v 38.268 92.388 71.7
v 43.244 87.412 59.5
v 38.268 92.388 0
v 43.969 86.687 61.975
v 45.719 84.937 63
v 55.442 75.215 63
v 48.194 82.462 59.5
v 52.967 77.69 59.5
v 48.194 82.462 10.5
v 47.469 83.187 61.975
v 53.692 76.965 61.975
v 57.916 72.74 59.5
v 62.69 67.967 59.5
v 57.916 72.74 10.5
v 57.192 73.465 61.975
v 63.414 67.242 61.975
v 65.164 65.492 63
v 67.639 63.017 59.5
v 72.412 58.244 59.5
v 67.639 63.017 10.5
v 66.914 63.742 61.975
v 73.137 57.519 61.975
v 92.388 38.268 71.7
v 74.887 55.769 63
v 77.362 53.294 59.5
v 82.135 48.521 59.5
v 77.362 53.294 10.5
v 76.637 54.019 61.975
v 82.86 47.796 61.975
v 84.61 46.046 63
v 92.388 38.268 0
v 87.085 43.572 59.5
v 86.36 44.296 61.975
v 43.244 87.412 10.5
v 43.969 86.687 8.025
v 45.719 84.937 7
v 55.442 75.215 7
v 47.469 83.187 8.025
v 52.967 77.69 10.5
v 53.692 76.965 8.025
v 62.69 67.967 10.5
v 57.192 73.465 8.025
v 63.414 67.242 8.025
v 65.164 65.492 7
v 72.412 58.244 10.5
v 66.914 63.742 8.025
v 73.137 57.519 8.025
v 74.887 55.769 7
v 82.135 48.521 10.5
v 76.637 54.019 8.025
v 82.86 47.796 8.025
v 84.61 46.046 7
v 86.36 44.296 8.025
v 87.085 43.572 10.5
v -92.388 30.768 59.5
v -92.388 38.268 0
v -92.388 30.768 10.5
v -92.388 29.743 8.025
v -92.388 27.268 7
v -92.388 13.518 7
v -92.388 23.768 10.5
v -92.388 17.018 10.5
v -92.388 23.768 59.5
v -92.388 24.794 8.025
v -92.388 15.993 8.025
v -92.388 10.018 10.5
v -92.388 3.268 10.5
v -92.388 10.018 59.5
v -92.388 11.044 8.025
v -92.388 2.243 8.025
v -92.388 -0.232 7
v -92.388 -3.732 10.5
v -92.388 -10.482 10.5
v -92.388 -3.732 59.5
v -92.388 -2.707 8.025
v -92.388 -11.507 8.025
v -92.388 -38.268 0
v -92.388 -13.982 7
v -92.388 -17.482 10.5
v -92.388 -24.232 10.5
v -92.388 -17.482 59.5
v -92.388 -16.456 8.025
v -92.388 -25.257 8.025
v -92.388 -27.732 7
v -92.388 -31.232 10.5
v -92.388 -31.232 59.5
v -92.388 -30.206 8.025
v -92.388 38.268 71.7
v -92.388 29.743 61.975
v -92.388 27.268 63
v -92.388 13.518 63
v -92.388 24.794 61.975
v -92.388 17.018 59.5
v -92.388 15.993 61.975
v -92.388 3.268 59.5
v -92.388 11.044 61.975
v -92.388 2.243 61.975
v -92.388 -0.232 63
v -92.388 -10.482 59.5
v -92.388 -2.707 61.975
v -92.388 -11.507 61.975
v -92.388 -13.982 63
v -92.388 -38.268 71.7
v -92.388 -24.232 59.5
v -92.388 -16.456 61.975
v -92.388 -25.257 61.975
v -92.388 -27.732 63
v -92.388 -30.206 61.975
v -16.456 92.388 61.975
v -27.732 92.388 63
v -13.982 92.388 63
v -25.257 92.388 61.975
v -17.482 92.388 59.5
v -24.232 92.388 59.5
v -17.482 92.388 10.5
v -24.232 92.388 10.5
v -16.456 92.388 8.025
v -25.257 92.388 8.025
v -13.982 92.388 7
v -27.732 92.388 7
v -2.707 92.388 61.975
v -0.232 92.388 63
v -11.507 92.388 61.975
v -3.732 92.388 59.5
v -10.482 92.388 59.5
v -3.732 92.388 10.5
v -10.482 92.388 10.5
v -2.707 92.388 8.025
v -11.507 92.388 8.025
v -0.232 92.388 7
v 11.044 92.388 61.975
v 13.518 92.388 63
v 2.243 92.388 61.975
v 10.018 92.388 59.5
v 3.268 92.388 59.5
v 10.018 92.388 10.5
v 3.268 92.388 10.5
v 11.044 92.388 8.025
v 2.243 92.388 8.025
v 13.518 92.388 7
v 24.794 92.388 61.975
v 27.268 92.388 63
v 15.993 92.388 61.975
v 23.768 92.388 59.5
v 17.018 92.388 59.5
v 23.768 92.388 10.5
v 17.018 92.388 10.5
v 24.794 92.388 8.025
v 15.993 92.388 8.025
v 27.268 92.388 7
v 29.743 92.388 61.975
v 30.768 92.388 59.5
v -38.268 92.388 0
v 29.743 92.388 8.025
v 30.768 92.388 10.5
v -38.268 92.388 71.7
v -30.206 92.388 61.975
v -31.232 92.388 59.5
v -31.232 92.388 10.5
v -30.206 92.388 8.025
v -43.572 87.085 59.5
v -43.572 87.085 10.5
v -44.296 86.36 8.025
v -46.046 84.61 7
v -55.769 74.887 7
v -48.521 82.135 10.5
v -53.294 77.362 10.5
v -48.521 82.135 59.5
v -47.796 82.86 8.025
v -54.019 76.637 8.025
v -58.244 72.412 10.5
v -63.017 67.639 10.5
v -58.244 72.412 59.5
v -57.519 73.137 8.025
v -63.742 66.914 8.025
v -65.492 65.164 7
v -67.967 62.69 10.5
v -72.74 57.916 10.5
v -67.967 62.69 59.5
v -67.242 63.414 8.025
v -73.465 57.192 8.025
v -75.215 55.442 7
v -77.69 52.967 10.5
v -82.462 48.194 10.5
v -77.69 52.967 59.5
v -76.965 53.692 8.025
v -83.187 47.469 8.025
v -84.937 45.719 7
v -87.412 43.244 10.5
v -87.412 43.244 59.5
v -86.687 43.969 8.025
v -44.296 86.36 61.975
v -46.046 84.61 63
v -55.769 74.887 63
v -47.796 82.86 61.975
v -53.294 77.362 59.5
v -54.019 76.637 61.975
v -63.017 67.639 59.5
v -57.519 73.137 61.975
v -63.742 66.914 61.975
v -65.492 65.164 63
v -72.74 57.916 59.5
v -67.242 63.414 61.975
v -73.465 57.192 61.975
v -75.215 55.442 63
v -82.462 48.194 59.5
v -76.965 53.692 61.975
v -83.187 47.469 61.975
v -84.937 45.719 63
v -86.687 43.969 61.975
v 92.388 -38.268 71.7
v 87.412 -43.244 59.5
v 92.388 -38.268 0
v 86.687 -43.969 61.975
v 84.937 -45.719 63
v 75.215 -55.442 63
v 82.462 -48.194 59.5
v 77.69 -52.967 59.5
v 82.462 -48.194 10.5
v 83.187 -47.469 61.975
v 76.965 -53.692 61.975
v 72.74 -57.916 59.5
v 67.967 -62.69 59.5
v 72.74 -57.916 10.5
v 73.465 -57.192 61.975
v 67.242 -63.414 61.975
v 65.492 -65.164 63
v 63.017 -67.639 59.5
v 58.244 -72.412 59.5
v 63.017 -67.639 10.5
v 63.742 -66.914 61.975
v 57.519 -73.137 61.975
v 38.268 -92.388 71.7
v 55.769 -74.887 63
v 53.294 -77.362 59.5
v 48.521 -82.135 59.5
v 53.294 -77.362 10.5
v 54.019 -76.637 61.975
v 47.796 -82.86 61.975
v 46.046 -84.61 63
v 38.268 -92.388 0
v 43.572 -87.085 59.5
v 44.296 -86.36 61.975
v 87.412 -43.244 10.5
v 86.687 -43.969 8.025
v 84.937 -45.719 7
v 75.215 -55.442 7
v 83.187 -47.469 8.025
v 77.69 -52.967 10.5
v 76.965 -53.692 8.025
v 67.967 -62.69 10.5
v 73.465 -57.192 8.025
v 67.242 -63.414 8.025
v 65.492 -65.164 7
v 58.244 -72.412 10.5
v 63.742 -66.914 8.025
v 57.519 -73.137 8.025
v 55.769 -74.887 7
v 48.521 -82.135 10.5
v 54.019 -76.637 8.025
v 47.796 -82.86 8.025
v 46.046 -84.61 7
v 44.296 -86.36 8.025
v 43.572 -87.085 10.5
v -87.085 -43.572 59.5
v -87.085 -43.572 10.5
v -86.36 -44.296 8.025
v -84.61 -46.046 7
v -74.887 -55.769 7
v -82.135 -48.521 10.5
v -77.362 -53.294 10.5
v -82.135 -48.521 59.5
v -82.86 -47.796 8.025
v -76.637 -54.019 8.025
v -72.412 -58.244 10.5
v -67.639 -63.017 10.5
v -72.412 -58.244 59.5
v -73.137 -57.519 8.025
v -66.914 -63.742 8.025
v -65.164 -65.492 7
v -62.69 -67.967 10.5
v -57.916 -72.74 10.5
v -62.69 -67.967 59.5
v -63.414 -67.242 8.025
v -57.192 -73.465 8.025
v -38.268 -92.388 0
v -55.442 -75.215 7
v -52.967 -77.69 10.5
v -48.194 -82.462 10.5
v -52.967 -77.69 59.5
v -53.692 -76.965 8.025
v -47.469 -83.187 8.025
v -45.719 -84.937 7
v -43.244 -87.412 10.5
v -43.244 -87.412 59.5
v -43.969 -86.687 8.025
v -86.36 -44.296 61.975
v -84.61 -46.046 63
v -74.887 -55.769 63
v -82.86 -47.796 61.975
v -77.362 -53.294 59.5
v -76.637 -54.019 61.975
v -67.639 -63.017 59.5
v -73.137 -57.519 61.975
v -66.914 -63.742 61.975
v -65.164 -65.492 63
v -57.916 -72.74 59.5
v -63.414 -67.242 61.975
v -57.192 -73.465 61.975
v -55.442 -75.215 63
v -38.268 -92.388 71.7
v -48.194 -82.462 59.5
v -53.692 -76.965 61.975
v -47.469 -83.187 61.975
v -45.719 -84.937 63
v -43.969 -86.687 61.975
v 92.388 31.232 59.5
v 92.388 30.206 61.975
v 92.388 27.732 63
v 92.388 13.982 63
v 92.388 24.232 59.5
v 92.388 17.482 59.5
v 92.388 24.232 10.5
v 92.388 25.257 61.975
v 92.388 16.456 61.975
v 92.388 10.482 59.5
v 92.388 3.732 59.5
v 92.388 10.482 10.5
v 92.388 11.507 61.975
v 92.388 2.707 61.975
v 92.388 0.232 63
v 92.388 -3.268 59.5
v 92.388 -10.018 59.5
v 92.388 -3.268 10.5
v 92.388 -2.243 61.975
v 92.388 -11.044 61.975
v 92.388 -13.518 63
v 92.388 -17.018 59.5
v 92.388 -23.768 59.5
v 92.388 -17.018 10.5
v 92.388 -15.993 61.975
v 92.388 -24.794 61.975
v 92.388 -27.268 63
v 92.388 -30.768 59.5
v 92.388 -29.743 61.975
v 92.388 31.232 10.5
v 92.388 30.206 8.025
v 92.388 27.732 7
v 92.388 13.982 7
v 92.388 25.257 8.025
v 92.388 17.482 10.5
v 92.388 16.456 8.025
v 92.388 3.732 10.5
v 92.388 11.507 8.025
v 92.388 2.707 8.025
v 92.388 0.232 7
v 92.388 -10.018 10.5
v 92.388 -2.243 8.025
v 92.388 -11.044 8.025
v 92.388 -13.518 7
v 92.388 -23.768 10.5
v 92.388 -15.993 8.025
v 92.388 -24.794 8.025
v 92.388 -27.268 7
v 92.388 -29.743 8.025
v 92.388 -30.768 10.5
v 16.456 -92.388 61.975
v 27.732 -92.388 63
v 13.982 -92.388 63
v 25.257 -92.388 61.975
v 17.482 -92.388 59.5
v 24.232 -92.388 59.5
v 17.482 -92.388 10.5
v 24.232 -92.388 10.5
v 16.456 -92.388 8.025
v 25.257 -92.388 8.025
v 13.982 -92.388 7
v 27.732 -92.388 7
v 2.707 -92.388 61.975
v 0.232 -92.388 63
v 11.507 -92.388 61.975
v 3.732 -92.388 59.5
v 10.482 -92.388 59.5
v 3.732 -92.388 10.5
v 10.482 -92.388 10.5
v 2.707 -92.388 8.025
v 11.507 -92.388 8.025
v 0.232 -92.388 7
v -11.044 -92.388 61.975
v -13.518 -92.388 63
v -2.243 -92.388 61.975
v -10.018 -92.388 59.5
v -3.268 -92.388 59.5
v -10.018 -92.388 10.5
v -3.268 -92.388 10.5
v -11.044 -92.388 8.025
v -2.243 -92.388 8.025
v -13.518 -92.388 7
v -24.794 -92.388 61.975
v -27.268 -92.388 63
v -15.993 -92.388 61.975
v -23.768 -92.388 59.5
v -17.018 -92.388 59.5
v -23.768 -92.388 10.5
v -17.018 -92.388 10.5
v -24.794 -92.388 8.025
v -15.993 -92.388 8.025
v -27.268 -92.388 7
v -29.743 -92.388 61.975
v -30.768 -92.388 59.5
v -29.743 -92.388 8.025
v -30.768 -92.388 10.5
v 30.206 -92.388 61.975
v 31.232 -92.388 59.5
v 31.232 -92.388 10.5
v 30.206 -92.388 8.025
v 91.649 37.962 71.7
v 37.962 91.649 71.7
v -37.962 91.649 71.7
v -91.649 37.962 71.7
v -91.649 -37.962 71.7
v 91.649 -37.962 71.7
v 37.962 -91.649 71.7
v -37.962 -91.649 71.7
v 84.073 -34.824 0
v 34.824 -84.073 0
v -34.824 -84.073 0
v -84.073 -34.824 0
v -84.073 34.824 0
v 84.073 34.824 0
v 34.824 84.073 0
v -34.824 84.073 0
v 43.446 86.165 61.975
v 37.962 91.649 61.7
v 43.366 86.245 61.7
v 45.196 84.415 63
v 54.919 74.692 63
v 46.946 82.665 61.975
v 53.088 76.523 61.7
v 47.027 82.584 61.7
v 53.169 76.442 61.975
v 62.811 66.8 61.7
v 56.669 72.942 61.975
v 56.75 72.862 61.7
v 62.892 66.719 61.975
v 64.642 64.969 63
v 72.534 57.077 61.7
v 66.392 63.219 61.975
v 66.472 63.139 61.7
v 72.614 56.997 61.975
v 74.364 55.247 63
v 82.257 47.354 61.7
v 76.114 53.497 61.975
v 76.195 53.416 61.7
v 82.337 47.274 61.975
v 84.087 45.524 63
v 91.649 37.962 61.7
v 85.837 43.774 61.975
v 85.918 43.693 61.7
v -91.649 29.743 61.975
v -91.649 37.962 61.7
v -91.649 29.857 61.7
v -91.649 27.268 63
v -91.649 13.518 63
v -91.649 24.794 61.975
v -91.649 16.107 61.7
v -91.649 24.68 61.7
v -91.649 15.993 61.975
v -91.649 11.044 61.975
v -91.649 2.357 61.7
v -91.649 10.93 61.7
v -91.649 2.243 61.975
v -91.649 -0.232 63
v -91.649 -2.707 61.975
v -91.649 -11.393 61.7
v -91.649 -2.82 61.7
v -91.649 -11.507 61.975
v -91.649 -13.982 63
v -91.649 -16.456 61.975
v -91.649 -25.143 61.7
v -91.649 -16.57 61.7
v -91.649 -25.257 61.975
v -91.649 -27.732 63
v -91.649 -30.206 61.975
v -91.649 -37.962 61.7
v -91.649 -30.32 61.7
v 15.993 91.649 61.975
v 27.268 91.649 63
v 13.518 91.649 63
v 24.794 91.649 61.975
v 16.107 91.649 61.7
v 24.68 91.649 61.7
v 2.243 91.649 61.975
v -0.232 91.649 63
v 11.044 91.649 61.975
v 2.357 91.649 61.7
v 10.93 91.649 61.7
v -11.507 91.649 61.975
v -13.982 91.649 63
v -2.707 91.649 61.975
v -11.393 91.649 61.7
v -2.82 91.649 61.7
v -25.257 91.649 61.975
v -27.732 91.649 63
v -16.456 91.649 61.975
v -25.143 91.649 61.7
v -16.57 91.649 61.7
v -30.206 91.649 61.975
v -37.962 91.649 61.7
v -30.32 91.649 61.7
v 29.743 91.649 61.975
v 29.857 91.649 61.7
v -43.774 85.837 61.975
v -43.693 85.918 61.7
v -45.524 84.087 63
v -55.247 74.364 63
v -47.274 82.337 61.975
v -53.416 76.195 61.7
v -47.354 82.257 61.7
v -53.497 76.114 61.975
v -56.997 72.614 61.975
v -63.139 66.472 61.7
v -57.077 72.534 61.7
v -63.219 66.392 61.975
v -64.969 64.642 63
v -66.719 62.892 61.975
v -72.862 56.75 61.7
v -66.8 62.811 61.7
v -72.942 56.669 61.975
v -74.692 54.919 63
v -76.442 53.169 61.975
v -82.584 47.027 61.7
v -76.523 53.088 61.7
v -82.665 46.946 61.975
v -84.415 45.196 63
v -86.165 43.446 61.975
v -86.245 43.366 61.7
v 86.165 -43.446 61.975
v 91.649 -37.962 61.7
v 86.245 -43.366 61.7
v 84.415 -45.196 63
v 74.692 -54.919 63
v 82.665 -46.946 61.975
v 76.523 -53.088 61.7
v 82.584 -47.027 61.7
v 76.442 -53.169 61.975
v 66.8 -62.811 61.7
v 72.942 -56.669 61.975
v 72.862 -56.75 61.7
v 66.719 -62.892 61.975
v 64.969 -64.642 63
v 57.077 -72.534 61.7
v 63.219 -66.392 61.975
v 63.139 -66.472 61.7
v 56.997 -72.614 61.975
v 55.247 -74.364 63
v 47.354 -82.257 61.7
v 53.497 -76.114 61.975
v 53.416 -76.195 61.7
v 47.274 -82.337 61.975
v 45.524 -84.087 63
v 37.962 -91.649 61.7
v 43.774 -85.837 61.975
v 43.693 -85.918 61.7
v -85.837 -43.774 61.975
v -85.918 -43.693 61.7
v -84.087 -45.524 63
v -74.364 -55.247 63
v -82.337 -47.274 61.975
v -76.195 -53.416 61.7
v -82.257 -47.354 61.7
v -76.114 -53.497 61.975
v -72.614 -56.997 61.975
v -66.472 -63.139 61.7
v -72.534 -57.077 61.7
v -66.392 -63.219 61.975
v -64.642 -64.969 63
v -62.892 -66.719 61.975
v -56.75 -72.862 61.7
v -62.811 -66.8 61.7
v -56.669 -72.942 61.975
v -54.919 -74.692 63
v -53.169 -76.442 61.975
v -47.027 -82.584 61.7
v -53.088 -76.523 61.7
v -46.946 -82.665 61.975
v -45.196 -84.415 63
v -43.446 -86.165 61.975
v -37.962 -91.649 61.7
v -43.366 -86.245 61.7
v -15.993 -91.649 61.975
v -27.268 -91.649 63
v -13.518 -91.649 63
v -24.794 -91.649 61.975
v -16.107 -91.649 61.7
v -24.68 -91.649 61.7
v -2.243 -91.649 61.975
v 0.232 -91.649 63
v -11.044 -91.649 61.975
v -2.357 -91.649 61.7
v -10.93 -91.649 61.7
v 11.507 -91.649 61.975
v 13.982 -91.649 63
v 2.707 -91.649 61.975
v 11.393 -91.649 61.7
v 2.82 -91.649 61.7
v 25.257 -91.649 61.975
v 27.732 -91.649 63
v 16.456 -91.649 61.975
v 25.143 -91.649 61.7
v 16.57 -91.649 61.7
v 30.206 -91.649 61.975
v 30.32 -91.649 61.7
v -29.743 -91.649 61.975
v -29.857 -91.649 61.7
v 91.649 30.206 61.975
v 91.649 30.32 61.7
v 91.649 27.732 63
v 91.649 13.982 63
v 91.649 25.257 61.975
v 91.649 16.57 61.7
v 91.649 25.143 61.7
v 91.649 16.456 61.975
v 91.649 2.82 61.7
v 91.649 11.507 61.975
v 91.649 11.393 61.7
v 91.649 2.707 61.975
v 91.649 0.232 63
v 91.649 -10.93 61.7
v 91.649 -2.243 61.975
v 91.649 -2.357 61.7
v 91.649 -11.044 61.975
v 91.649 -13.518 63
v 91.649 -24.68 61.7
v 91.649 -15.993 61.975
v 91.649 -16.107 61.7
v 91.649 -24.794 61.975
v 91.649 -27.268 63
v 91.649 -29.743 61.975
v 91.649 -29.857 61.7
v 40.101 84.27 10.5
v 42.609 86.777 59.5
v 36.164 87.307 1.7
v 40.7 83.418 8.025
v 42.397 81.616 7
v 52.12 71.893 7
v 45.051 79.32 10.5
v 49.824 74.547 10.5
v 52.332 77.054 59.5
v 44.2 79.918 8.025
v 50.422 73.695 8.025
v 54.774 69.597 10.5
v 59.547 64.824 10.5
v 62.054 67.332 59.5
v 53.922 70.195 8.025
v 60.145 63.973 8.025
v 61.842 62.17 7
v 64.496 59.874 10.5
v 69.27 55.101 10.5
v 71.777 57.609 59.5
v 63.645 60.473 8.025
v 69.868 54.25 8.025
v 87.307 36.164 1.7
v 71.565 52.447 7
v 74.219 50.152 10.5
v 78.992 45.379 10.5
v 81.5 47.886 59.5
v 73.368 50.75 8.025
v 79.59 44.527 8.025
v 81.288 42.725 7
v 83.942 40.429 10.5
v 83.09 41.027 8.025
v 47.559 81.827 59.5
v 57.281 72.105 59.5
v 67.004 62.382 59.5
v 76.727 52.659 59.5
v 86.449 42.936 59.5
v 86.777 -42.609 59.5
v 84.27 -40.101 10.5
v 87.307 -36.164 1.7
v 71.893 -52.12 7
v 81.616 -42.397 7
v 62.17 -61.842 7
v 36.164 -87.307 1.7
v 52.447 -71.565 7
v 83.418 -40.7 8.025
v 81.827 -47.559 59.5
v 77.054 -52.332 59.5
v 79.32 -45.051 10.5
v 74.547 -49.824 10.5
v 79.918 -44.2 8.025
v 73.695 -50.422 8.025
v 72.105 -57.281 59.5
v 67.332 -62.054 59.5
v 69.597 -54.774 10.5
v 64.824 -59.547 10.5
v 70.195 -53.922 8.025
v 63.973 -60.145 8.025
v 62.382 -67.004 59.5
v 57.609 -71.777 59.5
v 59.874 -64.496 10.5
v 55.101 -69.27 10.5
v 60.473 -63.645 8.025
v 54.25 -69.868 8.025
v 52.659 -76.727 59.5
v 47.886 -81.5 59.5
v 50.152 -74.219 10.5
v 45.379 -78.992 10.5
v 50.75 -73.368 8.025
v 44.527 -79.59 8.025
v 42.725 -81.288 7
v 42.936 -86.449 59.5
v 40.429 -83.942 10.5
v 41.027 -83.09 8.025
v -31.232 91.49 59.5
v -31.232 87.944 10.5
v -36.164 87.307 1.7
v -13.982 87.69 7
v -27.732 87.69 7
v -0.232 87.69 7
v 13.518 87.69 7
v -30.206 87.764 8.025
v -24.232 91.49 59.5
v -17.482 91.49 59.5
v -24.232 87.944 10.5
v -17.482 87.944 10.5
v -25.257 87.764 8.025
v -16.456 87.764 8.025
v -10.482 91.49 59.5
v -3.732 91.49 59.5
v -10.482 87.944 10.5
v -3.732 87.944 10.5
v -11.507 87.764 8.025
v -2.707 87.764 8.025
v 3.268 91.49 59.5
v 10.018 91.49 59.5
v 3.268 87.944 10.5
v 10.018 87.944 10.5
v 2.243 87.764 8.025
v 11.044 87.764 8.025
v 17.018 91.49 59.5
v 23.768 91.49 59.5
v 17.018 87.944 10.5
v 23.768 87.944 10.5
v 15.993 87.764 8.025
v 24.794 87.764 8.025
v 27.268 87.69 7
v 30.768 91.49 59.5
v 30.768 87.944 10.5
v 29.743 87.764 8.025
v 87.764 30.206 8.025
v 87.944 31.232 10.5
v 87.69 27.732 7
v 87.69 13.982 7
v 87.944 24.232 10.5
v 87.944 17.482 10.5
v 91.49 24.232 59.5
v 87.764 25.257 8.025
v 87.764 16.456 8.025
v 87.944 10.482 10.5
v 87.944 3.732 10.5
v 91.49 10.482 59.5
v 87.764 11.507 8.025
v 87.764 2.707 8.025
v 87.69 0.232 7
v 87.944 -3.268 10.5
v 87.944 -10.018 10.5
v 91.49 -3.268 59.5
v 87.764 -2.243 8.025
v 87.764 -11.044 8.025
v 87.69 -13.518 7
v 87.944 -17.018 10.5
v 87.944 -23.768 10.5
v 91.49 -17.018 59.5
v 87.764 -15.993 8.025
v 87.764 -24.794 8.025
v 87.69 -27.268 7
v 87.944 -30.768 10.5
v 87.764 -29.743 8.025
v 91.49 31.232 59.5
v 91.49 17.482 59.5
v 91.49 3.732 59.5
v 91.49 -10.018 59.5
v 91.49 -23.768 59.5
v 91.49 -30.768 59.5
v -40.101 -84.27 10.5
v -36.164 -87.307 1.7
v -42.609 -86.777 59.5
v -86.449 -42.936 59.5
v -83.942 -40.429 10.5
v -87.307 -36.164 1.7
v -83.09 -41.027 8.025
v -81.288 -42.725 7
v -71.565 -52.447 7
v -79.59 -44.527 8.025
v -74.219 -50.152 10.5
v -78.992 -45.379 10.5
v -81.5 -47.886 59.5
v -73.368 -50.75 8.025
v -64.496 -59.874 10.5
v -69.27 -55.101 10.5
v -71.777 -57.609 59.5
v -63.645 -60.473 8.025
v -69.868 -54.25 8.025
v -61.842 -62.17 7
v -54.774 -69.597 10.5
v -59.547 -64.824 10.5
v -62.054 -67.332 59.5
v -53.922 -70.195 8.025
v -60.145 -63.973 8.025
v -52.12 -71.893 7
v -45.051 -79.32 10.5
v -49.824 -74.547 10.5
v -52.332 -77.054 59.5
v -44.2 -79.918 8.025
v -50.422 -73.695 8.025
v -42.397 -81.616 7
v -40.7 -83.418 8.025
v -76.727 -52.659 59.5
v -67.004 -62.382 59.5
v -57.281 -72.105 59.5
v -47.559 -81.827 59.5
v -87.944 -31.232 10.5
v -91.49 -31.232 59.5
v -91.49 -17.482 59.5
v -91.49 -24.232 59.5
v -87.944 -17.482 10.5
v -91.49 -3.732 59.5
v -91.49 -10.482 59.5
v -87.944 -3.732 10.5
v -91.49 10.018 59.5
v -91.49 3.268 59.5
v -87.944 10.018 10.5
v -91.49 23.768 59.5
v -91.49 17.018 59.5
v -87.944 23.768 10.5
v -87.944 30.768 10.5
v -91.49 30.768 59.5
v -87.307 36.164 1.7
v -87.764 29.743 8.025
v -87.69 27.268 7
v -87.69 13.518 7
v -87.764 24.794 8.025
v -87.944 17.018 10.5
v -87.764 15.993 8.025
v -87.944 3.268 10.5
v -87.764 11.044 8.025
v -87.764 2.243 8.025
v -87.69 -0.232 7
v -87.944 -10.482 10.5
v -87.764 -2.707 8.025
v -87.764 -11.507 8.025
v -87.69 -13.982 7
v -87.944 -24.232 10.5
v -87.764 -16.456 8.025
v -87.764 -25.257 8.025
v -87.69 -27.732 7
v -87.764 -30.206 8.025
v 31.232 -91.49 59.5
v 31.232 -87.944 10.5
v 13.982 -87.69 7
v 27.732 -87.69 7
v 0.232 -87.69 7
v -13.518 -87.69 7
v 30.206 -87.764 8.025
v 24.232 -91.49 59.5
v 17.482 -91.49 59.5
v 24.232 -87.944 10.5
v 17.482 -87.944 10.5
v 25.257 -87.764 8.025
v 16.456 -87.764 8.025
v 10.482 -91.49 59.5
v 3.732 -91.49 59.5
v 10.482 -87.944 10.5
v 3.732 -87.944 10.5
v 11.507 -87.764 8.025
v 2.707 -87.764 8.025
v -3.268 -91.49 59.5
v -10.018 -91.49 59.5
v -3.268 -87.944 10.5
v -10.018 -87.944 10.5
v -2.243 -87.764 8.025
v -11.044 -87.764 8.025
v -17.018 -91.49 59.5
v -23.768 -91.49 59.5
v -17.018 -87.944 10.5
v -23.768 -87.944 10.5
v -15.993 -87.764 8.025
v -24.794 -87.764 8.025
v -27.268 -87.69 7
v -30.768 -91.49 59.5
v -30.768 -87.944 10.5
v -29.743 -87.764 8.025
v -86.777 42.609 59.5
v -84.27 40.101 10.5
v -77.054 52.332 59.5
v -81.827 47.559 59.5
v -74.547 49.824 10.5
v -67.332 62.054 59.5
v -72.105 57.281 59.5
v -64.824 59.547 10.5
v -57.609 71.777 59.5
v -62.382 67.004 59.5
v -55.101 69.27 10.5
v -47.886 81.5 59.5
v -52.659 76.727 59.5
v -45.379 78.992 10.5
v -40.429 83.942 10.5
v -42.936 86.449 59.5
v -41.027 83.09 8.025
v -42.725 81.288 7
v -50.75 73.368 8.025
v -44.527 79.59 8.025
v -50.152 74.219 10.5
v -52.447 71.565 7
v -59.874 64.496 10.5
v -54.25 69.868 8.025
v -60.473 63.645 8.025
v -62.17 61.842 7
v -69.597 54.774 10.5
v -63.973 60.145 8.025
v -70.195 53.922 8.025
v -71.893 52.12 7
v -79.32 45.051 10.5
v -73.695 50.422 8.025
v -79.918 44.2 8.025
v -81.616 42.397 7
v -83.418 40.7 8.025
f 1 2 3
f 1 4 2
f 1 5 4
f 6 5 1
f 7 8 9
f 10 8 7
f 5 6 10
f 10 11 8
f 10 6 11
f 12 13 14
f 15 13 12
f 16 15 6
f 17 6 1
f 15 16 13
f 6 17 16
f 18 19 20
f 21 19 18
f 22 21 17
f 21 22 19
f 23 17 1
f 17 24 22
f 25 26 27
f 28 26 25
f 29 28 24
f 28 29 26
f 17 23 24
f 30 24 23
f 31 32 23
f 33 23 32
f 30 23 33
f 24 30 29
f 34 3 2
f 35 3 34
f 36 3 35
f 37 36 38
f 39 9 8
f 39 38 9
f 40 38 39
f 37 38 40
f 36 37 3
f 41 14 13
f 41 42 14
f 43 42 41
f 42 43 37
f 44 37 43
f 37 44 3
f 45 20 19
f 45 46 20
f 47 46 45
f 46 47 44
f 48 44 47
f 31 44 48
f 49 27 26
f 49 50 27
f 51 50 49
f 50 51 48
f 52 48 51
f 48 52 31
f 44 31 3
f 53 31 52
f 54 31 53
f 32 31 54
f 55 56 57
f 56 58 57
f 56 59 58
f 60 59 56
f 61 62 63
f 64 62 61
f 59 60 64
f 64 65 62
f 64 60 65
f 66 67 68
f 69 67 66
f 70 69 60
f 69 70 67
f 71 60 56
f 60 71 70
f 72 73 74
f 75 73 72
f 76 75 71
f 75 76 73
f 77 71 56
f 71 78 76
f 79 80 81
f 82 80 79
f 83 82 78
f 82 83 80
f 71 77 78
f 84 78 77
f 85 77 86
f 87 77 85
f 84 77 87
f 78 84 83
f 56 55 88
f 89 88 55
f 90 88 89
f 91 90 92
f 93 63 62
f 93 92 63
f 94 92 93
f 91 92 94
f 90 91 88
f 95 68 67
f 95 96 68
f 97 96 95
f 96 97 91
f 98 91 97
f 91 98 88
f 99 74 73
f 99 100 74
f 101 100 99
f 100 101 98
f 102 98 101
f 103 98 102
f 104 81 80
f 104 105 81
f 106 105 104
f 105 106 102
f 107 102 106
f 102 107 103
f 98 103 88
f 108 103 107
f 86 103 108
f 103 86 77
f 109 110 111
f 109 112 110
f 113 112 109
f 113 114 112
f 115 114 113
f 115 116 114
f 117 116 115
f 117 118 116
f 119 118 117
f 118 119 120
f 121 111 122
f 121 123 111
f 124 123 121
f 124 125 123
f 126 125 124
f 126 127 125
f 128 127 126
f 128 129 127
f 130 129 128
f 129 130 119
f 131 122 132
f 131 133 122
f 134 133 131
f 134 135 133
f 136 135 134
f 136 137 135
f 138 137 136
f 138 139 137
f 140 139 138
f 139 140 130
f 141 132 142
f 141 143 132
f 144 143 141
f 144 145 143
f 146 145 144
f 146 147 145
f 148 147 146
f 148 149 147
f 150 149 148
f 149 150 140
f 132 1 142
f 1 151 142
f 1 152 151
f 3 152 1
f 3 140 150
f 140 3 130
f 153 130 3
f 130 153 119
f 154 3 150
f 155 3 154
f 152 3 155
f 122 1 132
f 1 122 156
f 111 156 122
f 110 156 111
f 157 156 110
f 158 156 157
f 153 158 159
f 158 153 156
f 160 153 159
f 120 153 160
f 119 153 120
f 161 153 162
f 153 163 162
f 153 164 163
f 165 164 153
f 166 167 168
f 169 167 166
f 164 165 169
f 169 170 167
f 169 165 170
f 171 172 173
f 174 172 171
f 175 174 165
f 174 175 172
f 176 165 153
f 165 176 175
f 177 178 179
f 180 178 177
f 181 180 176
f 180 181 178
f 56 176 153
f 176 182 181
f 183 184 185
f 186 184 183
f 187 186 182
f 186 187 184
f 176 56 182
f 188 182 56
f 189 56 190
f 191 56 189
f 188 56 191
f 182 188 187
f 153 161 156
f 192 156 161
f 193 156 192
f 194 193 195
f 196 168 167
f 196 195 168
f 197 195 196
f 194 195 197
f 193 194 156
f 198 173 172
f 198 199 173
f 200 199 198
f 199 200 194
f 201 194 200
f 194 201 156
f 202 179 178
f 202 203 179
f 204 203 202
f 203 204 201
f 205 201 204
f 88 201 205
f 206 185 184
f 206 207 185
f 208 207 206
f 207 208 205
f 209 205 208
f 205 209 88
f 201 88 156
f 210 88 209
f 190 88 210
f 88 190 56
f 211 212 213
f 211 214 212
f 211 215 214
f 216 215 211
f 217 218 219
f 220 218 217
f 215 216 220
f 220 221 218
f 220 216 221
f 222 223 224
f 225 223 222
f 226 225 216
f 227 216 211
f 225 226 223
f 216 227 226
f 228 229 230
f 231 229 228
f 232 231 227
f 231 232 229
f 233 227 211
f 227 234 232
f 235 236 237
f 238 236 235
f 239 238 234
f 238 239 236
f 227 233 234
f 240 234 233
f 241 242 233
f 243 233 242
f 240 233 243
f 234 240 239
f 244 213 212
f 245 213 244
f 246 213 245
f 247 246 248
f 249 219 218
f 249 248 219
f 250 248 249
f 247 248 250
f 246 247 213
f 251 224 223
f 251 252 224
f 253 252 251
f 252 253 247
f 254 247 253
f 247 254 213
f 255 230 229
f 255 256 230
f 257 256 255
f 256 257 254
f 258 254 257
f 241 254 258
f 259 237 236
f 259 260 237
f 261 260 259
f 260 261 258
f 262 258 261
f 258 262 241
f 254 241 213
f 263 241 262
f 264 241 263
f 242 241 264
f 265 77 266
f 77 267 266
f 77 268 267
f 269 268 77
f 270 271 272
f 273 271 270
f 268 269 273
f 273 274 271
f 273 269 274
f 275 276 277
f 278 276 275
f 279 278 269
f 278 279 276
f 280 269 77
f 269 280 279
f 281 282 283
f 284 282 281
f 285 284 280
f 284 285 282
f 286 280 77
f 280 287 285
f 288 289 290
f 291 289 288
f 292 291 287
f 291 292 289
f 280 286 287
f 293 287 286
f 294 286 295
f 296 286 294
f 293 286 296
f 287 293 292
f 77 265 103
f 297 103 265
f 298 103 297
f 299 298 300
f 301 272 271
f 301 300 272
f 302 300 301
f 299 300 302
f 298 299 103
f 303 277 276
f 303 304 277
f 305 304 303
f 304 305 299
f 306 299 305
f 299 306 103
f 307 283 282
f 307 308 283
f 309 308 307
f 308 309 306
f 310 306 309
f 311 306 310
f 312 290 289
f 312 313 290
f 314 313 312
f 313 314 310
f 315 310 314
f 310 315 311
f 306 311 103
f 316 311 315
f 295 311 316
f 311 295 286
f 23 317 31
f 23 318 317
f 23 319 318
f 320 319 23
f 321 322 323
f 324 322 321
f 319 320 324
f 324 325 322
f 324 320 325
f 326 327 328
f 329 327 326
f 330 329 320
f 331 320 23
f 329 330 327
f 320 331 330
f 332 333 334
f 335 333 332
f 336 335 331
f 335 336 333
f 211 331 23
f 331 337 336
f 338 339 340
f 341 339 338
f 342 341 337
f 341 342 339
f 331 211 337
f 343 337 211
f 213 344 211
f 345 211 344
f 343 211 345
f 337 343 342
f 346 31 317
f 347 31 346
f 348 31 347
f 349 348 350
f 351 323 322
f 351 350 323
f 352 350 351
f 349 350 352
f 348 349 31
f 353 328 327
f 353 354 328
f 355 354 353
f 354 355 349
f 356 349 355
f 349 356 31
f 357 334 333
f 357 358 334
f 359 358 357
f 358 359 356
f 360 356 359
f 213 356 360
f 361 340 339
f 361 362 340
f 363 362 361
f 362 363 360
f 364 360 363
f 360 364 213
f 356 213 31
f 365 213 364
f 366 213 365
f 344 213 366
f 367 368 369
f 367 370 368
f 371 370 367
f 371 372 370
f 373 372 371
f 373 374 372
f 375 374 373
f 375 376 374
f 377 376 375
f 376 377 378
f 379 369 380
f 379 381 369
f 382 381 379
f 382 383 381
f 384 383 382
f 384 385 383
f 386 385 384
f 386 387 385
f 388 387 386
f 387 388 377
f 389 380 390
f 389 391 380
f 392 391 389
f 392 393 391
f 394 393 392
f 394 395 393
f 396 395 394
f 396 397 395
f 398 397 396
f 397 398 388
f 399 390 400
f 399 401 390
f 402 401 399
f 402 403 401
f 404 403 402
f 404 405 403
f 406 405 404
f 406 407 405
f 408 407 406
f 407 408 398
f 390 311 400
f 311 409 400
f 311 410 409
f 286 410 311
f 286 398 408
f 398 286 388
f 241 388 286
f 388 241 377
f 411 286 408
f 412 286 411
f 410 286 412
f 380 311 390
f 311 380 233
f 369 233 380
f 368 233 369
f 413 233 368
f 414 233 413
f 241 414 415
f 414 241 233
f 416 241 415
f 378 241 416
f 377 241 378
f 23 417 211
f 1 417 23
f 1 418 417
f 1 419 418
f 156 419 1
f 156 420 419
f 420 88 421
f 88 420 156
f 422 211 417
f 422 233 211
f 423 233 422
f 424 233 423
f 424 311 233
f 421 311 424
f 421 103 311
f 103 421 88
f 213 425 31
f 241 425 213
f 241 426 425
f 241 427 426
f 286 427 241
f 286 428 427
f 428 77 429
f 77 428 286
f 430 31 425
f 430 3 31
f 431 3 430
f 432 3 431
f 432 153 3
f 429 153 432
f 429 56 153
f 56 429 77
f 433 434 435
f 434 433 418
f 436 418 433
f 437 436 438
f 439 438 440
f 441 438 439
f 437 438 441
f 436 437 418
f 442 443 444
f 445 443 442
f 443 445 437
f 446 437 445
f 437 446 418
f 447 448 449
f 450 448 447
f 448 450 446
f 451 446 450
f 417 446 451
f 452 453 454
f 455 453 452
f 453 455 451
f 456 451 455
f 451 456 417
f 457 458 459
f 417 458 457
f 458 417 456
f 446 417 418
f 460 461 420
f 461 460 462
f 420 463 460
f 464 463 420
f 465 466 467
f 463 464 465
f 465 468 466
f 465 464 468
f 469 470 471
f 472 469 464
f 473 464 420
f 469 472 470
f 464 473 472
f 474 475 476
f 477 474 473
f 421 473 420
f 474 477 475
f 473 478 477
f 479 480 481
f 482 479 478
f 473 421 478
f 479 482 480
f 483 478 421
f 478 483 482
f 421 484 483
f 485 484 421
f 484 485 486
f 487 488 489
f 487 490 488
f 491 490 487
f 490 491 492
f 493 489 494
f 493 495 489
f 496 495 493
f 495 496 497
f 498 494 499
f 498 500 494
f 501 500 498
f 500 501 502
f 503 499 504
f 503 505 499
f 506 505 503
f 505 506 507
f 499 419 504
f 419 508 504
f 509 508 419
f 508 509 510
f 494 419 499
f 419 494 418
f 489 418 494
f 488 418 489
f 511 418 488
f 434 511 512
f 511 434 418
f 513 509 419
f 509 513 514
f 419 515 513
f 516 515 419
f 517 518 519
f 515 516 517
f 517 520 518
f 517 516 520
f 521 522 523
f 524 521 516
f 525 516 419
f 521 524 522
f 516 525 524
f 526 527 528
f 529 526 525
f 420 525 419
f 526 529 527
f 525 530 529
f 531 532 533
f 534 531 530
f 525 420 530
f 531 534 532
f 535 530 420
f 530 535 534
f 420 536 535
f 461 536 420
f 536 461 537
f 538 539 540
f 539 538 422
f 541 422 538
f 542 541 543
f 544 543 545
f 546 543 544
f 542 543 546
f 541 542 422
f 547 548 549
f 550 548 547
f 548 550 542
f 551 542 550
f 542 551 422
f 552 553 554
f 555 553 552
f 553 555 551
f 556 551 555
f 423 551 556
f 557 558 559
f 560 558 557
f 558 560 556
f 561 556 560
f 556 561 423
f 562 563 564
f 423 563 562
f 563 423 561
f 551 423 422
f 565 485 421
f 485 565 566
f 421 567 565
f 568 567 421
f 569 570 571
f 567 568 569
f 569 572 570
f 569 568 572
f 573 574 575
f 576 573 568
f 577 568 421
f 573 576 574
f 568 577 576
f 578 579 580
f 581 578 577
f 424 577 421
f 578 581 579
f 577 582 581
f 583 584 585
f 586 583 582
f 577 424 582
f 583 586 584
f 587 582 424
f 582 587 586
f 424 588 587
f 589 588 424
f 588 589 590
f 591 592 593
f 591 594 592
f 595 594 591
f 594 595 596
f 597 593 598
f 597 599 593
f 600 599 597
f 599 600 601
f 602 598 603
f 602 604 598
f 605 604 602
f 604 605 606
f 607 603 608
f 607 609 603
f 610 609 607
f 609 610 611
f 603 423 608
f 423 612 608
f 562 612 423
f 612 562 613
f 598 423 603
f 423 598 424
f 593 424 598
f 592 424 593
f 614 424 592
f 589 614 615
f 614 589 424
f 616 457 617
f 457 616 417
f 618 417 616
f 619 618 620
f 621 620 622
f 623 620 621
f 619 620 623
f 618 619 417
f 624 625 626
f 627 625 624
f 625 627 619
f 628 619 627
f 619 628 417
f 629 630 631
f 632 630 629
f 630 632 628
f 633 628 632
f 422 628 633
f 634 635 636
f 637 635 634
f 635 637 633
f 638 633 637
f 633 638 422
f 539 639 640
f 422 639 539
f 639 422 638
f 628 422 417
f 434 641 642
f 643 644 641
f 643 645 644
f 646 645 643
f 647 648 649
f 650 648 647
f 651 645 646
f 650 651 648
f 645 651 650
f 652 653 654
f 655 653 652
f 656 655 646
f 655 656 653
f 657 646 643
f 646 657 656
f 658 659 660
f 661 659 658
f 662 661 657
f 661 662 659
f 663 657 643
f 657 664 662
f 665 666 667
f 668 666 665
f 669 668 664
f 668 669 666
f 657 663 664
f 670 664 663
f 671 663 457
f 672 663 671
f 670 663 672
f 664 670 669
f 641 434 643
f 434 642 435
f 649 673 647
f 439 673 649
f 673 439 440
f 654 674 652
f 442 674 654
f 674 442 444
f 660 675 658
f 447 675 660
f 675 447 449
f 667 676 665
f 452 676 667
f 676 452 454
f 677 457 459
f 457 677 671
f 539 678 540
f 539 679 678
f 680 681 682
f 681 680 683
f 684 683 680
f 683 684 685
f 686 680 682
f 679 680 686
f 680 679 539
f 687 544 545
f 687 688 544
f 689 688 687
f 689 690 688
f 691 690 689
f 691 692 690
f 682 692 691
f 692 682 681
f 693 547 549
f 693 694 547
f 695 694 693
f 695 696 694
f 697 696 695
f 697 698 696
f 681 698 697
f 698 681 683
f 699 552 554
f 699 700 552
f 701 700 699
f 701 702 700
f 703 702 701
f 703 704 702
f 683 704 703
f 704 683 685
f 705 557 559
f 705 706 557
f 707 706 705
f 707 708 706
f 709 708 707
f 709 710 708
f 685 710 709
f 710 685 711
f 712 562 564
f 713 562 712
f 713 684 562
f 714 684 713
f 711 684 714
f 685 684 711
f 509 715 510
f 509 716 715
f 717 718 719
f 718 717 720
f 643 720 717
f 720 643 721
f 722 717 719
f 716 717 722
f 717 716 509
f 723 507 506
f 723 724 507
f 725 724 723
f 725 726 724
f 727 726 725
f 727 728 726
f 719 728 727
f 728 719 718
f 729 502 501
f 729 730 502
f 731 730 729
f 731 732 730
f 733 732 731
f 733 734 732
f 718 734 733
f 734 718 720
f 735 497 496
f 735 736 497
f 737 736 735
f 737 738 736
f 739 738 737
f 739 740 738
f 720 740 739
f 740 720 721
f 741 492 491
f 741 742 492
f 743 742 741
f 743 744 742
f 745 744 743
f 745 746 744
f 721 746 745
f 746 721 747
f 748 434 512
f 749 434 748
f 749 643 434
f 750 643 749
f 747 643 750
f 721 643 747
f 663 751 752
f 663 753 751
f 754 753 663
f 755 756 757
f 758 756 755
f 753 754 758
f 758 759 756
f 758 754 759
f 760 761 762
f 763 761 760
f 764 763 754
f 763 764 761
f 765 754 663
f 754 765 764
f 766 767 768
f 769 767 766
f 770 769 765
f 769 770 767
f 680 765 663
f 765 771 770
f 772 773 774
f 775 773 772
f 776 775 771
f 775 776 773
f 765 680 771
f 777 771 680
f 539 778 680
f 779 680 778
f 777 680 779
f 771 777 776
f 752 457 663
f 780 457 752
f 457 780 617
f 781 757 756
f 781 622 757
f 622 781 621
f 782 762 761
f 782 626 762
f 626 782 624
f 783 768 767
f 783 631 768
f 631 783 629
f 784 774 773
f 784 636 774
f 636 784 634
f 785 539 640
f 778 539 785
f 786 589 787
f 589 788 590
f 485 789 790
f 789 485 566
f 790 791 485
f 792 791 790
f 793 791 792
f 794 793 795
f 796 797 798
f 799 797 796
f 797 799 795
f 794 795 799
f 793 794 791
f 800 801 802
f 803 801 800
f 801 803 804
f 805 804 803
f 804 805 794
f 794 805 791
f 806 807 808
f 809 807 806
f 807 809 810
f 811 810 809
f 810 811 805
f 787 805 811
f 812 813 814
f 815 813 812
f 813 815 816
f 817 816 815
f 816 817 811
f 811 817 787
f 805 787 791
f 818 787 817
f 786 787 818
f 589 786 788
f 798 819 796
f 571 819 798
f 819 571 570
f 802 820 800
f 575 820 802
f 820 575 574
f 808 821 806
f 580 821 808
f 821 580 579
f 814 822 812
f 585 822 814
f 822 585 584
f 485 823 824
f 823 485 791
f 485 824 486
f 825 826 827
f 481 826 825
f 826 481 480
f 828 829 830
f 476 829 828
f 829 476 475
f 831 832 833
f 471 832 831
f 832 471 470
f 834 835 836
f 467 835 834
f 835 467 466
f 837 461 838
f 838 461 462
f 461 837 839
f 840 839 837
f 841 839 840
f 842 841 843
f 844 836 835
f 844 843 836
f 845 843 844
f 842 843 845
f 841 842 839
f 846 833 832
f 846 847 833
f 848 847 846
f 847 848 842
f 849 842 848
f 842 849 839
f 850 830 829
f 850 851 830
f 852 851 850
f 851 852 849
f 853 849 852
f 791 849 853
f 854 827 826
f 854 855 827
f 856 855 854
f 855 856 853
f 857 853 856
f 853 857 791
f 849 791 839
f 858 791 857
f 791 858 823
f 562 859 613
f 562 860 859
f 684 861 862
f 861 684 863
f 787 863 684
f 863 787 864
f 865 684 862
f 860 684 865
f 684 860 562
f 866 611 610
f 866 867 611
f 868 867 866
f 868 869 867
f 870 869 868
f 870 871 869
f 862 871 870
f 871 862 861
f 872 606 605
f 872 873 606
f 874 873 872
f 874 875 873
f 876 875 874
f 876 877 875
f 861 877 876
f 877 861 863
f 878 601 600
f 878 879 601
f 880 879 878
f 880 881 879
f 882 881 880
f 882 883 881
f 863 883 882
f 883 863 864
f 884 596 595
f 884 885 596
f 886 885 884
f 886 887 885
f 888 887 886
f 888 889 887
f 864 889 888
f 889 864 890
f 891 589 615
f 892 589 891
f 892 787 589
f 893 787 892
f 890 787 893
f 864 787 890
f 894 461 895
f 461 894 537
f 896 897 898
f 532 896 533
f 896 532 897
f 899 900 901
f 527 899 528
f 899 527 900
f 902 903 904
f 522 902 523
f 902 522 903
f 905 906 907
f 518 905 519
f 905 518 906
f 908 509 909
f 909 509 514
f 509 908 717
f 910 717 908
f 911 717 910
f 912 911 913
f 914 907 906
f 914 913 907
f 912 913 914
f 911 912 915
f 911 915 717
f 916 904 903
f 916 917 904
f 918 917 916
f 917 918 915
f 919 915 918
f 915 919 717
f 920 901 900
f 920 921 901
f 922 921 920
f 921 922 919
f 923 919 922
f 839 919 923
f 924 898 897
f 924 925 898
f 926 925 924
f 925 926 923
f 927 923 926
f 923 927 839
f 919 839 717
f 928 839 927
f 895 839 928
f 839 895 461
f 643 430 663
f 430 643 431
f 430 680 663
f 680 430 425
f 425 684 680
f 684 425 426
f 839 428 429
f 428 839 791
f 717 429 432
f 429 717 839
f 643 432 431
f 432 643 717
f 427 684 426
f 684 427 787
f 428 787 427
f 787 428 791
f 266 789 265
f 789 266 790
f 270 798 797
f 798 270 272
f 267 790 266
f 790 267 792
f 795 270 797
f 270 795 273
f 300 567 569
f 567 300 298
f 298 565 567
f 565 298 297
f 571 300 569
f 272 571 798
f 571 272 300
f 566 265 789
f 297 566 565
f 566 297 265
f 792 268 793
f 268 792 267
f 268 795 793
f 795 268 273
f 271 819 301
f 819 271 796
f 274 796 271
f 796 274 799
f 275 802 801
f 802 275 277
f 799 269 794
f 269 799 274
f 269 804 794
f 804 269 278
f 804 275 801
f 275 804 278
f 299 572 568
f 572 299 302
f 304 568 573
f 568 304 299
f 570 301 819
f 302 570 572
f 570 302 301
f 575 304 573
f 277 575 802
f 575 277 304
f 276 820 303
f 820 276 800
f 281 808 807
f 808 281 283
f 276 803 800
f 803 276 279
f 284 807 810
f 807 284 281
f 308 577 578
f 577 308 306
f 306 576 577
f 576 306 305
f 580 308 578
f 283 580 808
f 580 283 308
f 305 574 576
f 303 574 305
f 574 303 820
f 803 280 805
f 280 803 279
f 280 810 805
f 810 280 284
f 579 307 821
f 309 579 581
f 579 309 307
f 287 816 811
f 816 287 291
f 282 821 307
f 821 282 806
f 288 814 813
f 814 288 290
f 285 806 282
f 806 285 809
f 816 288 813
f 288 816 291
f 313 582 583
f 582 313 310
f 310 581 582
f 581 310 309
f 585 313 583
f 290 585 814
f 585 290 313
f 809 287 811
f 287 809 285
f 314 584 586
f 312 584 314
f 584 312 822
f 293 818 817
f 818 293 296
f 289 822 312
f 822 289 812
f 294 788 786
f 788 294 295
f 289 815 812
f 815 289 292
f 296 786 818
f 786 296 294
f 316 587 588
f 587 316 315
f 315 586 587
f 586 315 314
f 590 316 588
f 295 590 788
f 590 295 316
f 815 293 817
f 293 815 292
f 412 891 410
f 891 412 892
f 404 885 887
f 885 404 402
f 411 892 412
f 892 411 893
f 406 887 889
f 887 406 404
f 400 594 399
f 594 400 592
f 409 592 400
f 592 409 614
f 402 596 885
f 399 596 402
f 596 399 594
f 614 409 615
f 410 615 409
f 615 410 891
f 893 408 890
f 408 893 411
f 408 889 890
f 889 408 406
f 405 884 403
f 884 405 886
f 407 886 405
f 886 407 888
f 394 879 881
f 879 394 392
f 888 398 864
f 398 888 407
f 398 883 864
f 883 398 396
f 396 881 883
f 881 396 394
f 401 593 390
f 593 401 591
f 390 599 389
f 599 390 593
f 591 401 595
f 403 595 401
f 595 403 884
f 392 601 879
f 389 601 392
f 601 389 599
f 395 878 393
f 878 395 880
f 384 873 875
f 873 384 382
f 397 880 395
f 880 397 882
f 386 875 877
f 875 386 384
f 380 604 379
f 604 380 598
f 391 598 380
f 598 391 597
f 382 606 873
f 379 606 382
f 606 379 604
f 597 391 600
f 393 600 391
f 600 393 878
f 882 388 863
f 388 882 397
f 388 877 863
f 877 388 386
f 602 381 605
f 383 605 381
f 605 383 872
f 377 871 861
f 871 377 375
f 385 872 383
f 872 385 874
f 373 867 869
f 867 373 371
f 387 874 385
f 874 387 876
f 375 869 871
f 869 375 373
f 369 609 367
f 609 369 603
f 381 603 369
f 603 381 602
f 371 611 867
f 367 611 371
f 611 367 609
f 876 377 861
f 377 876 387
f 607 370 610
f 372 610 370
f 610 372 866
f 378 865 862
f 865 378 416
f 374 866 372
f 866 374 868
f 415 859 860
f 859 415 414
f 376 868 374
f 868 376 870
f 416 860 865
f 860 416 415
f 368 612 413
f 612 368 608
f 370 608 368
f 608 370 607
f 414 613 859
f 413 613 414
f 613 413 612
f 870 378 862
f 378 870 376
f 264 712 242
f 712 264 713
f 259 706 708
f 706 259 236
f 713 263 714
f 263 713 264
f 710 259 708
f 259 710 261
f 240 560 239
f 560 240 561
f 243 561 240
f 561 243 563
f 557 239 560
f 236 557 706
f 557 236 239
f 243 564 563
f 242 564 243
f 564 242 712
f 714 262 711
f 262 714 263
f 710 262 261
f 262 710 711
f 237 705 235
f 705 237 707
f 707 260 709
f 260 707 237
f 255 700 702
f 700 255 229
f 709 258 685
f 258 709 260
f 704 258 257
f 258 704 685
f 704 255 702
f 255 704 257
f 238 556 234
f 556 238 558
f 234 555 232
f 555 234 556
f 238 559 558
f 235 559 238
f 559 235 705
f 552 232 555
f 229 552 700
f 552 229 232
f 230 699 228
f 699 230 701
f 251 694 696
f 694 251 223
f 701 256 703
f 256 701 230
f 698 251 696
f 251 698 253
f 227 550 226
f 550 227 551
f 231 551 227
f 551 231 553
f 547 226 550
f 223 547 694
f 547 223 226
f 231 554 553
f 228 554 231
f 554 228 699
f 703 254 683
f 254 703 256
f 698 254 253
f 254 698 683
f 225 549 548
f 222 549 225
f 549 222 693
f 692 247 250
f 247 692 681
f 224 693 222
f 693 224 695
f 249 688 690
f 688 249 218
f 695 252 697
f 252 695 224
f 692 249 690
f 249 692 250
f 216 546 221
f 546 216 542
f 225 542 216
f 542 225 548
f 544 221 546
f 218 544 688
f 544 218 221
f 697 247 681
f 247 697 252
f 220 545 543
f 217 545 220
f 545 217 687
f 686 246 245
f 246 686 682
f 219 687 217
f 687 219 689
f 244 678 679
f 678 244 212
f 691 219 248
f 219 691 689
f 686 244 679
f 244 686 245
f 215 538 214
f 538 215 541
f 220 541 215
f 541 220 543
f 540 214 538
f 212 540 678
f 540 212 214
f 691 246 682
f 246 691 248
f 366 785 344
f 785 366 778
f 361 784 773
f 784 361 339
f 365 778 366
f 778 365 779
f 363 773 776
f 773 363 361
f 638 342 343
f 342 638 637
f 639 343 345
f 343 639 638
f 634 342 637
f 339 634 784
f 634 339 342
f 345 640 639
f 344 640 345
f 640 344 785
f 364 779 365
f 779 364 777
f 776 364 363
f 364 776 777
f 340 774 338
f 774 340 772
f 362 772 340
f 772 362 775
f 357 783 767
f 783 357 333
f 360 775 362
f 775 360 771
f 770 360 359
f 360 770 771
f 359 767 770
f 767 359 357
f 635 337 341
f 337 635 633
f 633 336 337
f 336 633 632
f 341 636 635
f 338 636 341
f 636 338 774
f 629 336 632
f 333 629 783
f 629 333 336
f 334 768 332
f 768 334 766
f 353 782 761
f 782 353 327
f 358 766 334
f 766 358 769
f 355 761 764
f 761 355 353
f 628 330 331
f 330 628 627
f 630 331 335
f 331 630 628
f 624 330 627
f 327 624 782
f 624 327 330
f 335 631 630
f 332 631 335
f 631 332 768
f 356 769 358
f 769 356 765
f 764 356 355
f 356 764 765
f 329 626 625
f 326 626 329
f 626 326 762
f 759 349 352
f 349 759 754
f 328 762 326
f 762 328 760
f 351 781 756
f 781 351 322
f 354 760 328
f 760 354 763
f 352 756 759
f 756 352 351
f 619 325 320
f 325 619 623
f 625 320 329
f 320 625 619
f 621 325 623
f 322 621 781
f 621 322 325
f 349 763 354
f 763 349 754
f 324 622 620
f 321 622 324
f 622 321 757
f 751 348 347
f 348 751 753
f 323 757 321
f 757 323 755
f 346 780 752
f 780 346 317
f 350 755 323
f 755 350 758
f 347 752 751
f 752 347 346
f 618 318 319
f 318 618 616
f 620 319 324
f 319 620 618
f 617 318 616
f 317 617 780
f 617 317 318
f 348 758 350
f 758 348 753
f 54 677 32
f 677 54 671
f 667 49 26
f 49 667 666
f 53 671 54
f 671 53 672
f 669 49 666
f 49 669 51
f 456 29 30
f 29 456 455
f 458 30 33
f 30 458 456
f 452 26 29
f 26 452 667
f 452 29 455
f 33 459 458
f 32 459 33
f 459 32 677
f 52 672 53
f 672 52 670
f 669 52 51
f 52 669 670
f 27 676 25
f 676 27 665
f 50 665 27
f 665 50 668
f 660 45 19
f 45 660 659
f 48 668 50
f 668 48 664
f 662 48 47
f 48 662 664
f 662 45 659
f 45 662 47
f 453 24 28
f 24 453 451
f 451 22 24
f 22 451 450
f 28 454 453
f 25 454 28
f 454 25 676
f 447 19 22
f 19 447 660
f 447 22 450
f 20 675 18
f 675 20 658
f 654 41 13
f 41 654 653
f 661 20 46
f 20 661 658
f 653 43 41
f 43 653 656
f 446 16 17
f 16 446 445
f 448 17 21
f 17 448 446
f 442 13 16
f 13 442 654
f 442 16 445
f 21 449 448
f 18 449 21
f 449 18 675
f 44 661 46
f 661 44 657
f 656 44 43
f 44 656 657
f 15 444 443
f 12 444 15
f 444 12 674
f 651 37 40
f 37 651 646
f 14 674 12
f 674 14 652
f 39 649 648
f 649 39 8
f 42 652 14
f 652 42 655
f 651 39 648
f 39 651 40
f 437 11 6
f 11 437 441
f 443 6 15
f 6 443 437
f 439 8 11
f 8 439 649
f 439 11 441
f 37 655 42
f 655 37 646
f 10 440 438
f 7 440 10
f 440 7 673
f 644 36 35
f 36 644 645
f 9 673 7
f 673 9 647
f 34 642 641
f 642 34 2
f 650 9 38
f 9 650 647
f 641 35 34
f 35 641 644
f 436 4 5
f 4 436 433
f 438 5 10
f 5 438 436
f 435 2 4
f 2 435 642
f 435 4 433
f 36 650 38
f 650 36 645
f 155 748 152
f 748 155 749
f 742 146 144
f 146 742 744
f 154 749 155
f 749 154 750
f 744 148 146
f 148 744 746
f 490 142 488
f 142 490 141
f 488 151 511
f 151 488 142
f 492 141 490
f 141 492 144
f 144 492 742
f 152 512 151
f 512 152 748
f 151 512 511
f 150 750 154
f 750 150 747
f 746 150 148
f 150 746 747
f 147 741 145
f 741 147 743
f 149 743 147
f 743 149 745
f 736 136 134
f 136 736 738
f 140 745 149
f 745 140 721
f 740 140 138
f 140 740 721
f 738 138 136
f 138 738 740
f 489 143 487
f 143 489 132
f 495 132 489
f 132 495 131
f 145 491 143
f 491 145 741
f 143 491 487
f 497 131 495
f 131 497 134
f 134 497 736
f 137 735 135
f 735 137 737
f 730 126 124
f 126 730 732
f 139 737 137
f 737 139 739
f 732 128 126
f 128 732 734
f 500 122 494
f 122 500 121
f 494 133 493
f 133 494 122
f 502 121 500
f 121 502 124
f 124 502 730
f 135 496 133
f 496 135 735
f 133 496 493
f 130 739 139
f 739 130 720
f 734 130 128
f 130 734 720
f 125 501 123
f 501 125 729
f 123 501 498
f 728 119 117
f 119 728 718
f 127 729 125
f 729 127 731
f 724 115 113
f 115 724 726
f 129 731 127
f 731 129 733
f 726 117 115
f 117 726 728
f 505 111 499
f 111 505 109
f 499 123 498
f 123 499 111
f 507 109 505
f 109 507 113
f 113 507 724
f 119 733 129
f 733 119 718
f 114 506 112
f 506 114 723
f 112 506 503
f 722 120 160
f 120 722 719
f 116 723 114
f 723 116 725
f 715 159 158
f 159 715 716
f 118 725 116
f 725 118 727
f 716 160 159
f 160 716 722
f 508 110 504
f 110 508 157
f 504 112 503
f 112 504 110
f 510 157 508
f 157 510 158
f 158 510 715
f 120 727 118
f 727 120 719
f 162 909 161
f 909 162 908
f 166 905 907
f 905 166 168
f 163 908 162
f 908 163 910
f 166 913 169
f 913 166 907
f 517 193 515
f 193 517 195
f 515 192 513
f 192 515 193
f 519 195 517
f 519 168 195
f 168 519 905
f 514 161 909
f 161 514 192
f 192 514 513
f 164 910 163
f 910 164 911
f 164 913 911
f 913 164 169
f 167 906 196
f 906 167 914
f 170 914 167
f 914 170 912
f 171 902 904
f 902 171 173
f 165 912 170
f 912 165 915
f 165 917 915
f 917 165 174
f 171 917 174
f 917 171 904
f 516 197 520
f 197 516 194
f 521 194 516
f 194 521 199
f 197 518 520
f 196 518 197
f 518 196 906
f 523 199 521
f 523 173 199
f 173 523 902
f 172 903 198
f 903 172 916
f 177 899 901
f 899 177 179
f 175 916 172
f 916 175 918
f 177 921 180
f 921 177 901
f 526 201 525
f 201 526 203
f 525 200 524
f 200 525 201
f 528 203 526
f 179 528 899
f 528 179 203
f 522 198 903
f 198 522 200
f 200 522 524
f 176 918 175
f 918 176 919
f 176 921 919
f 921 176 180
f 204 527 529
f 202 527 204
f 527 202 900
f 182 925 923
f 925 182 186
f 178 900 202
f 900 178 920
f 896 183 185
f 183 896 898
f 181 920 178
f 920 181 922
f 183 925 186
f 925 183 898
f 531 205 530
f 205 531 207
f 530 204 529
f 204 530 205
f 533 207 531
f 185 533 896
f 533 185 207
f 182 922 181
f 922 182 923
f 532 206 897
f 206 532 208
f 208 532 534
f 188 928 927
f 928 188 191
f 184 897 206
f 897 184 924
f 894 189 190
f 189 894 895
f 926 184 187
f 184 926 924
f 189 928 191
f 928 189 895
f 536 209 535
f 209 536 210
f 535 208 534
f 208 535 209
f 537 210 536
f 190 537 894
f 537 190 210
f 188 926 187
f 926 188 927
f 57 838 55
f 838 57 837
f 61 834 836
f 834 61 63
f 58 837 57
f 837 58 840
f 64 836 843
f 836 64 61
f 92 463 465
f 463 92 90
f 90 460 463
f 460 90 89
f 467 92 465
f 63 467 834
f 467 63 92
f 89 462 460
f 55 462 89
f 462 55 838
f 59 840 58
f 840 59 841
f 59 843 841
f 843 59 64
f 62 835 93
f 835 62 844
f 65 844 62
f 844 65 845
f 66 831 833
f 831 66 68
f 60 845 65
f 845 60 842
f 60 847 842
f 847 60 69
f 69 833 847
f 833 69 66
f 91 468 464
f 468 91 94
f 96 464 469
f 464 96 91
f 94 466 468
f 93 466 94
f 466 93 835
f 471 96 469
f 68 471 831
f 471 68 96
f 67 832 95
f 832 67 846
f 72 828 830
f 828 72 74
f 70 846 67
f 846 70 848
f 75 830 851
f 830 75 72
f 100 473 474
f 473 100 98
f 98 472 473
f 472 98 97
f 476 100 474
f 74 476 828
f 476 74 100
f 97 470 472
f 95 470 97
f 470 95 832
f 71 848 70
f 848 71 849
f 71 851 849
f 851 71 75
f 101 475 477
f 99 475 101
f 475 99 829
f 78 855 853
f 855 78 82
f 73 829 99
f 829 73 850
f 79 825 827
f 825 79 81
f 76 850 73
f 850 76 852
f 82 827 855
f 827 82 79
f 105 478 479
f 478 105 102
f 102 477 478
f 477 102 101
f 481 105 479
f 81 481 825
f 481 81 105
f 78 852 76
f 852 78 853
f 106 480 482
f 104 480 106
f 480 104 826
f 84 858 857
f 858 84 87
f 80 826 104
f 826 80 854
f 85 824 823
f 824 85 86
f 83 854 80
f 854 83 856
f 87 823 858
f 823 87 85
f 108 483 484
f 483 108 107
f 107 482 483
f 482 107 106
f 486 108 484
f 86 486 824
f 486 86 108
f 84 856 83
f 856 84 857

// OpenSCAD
// file: ring.scad
module stackable_body(width, h, hg, w, fn)
{
    x=7;

    difference()
    {
        width_i=width-2*w-w;
        union()
        {
            translate([0,0,hg+4+w+2])
            x_cube(width,width,h-hg-4-2-w,fn);
            translate([0,0,hg+4+w])
            x_cube(width_i+w,width,2,fn);
            translate([0,0,hg+4])
            x_cube(width_i, width_i+w,w,fn);
            translate([0,0,hg])
            x_cube(width_i, width_i,4,fn);
            x_cube(width_i-2*w, width_i,hg,fn);
        }
        translate([0,-50*0,0])
        {
            width=width-2*w;
            width_i=width_i-2*w;
            translate([0,0,hg+hg+4+w+2])
            x_cube(width,width,h-(hg+4+w+2),fn);
            translate([0,0,hg])
            x_cube(width_i-x,width,(hg+4+w+2),fn);
            x_cube(width_i-x, width_i-x,hg,fn);
        }
    }
}


module x_cube(width1, width2,h,fn)
{
    width2 = (width2 == 0) ? width1 : width2;

    rotate([0,0,45/2])
    cylinder(d1=width1,d2=width2,h=h,$fn=fn);
}

function side_to_diameter(a) = (
    let(v=a*sin(45))
    let(d=v*2)
    d);

// screew holes:
// distance = 105;
// diagonal distance = 150;
// diameter = 5;
// main file
use<ring.scad>

fn=8;
//hg=0.2+0.3*3;
hg=0.2+0.3*5;
h=70;
w=0.4*2;
width=200;
x=7;

t=40-hg-4;




//translate([0,0,t*7])
//color("white")
//body();
//translate([0,0,t*6])
//color("hotpink")
//body();
//translate([0,0,t*5])
//color("white")
//body();
//translate([0,0,t*4])
//color("SpringGreen")
//body();
//translate([0,0,t*3])
//color("white")
//body();
//translate([0,0,t*2])
//color("white")
//body();
//translate([0,0,t*1])
//color("white")
//body();
//color("white")
body();

module body()
{
    difference()
    {
        width_i=width-2*w-w;
        union()
        {
            translate([0,0,hg])
            x_cube(width, width,h,fn);
            x_cube(width, width,hg,fn);
        }
        translate([0,-50*0,0])
        {
            width=width-2*w;
            width_i=width_i-2*w;
            translate([0,0,hg+h-10])
            x_cube(width,width,10,fn);
            translate([0,0,hg])
            x_cube(width_i-x,width,h-10,fn);
            x_cube(width_i-2*x, width_i-x,hg,fn);
        }
		for(i = [0:7])
		rotate([0,0,45*i+45/2])
        #frameRibHoles(h, width);
    }

//    translate([-width/2-w,-width/2-w,0])
//    bottom_grid(width);
}


module frameRibHoles(height, diameter)
{
	holeCount = 5;
	holeWidth = 7;
	holeSpacing = 13.75;

	translate([-diameter/2,0,height*0.85])
	rotate([0,90,45/2])
	for(holeIndex = [1:holeCount])
	hull()
	{
		translate([0,(holeSpacing/holeCount)-holeSpacing*holeIndex,0])
		#cylinder(d=holeWidth,h=x,$fn=fn);
		translate([h*0.7,(holeSpacing/holeCount)-holeSpacing*holeIndex,0])
		cylinder(d=holeWidth,h=x,$fn=fn);
	}
}


module bottom_grid(width)
{
//    difference()
//    {
//        cube([width+2*w,width+2*w,hg]);
//        translate([w,w,0])
//        #cube([width,width,hg]);
//    }

    difference()
    {
        union()
        {
            translate([w,w,0])
            bottom_grid_vertical(width=width,c=35*2);
            translate([w,w,0])
            bottom_grid_horizontal(width=width,c=5,w=w);
        }
        difference()
        {
            cube([width*2,width*2,hg]);
            
            width_i=width-2*w-w-2*w;
            translate([width/2+w,width/2+w,0])
            x_cube(width_i, width_i,hg+4,fn);
        }
    }    
}

module bottom_grid_horizontal(width=width,c=2,w=0.4*2)
{
    s=(width-w*(c-1))/c;
    sw=s+w;
//    echo(s);
    
    translate([0,s,0])
    for(i=[0:c-2])
    {        
        translate([0,i*sw,0])
        cube([width,w,hg]);
    }
}

module bottom_grid_vertical(width=100,c=35,w=0.4*2)
{
    s=(width-w*(c-1))/c;
    sw=s+w;
//    echo(s);

    translate([s,0,0])
    for(i=[0:c-2])
    {        
        translate([i*sw,0,0])
        cube([w,width,hg]);
    }
}

//module x_cube(width1, width2,h)
//{
//    width2 = (width2 == 0) ? width1 : width2;
//
//    rotate([0,0,45/2])
//    cylinder(d1=width1,d2=width2,h=h,$fn=fn);
//}
//
//function side_to_diameter(a) = (
//    let(v=a*sin(45))
//    let(d=v*2)
//    d);
//
////module side_vertical_span(h, d=10)
////{
////    scale([1,1/2,1])
////    difference()
////    {
////        cylinder(d1=d,d2=d/5,h=h,$fn=6);
////        translate([-d/2,-d/2,0])
////        cube([d,d/2,h]);
////    }
////}
//
//// screew holes:
//// distance = 105;
//// diagonal distance = 150;
//// diameter = 5;
